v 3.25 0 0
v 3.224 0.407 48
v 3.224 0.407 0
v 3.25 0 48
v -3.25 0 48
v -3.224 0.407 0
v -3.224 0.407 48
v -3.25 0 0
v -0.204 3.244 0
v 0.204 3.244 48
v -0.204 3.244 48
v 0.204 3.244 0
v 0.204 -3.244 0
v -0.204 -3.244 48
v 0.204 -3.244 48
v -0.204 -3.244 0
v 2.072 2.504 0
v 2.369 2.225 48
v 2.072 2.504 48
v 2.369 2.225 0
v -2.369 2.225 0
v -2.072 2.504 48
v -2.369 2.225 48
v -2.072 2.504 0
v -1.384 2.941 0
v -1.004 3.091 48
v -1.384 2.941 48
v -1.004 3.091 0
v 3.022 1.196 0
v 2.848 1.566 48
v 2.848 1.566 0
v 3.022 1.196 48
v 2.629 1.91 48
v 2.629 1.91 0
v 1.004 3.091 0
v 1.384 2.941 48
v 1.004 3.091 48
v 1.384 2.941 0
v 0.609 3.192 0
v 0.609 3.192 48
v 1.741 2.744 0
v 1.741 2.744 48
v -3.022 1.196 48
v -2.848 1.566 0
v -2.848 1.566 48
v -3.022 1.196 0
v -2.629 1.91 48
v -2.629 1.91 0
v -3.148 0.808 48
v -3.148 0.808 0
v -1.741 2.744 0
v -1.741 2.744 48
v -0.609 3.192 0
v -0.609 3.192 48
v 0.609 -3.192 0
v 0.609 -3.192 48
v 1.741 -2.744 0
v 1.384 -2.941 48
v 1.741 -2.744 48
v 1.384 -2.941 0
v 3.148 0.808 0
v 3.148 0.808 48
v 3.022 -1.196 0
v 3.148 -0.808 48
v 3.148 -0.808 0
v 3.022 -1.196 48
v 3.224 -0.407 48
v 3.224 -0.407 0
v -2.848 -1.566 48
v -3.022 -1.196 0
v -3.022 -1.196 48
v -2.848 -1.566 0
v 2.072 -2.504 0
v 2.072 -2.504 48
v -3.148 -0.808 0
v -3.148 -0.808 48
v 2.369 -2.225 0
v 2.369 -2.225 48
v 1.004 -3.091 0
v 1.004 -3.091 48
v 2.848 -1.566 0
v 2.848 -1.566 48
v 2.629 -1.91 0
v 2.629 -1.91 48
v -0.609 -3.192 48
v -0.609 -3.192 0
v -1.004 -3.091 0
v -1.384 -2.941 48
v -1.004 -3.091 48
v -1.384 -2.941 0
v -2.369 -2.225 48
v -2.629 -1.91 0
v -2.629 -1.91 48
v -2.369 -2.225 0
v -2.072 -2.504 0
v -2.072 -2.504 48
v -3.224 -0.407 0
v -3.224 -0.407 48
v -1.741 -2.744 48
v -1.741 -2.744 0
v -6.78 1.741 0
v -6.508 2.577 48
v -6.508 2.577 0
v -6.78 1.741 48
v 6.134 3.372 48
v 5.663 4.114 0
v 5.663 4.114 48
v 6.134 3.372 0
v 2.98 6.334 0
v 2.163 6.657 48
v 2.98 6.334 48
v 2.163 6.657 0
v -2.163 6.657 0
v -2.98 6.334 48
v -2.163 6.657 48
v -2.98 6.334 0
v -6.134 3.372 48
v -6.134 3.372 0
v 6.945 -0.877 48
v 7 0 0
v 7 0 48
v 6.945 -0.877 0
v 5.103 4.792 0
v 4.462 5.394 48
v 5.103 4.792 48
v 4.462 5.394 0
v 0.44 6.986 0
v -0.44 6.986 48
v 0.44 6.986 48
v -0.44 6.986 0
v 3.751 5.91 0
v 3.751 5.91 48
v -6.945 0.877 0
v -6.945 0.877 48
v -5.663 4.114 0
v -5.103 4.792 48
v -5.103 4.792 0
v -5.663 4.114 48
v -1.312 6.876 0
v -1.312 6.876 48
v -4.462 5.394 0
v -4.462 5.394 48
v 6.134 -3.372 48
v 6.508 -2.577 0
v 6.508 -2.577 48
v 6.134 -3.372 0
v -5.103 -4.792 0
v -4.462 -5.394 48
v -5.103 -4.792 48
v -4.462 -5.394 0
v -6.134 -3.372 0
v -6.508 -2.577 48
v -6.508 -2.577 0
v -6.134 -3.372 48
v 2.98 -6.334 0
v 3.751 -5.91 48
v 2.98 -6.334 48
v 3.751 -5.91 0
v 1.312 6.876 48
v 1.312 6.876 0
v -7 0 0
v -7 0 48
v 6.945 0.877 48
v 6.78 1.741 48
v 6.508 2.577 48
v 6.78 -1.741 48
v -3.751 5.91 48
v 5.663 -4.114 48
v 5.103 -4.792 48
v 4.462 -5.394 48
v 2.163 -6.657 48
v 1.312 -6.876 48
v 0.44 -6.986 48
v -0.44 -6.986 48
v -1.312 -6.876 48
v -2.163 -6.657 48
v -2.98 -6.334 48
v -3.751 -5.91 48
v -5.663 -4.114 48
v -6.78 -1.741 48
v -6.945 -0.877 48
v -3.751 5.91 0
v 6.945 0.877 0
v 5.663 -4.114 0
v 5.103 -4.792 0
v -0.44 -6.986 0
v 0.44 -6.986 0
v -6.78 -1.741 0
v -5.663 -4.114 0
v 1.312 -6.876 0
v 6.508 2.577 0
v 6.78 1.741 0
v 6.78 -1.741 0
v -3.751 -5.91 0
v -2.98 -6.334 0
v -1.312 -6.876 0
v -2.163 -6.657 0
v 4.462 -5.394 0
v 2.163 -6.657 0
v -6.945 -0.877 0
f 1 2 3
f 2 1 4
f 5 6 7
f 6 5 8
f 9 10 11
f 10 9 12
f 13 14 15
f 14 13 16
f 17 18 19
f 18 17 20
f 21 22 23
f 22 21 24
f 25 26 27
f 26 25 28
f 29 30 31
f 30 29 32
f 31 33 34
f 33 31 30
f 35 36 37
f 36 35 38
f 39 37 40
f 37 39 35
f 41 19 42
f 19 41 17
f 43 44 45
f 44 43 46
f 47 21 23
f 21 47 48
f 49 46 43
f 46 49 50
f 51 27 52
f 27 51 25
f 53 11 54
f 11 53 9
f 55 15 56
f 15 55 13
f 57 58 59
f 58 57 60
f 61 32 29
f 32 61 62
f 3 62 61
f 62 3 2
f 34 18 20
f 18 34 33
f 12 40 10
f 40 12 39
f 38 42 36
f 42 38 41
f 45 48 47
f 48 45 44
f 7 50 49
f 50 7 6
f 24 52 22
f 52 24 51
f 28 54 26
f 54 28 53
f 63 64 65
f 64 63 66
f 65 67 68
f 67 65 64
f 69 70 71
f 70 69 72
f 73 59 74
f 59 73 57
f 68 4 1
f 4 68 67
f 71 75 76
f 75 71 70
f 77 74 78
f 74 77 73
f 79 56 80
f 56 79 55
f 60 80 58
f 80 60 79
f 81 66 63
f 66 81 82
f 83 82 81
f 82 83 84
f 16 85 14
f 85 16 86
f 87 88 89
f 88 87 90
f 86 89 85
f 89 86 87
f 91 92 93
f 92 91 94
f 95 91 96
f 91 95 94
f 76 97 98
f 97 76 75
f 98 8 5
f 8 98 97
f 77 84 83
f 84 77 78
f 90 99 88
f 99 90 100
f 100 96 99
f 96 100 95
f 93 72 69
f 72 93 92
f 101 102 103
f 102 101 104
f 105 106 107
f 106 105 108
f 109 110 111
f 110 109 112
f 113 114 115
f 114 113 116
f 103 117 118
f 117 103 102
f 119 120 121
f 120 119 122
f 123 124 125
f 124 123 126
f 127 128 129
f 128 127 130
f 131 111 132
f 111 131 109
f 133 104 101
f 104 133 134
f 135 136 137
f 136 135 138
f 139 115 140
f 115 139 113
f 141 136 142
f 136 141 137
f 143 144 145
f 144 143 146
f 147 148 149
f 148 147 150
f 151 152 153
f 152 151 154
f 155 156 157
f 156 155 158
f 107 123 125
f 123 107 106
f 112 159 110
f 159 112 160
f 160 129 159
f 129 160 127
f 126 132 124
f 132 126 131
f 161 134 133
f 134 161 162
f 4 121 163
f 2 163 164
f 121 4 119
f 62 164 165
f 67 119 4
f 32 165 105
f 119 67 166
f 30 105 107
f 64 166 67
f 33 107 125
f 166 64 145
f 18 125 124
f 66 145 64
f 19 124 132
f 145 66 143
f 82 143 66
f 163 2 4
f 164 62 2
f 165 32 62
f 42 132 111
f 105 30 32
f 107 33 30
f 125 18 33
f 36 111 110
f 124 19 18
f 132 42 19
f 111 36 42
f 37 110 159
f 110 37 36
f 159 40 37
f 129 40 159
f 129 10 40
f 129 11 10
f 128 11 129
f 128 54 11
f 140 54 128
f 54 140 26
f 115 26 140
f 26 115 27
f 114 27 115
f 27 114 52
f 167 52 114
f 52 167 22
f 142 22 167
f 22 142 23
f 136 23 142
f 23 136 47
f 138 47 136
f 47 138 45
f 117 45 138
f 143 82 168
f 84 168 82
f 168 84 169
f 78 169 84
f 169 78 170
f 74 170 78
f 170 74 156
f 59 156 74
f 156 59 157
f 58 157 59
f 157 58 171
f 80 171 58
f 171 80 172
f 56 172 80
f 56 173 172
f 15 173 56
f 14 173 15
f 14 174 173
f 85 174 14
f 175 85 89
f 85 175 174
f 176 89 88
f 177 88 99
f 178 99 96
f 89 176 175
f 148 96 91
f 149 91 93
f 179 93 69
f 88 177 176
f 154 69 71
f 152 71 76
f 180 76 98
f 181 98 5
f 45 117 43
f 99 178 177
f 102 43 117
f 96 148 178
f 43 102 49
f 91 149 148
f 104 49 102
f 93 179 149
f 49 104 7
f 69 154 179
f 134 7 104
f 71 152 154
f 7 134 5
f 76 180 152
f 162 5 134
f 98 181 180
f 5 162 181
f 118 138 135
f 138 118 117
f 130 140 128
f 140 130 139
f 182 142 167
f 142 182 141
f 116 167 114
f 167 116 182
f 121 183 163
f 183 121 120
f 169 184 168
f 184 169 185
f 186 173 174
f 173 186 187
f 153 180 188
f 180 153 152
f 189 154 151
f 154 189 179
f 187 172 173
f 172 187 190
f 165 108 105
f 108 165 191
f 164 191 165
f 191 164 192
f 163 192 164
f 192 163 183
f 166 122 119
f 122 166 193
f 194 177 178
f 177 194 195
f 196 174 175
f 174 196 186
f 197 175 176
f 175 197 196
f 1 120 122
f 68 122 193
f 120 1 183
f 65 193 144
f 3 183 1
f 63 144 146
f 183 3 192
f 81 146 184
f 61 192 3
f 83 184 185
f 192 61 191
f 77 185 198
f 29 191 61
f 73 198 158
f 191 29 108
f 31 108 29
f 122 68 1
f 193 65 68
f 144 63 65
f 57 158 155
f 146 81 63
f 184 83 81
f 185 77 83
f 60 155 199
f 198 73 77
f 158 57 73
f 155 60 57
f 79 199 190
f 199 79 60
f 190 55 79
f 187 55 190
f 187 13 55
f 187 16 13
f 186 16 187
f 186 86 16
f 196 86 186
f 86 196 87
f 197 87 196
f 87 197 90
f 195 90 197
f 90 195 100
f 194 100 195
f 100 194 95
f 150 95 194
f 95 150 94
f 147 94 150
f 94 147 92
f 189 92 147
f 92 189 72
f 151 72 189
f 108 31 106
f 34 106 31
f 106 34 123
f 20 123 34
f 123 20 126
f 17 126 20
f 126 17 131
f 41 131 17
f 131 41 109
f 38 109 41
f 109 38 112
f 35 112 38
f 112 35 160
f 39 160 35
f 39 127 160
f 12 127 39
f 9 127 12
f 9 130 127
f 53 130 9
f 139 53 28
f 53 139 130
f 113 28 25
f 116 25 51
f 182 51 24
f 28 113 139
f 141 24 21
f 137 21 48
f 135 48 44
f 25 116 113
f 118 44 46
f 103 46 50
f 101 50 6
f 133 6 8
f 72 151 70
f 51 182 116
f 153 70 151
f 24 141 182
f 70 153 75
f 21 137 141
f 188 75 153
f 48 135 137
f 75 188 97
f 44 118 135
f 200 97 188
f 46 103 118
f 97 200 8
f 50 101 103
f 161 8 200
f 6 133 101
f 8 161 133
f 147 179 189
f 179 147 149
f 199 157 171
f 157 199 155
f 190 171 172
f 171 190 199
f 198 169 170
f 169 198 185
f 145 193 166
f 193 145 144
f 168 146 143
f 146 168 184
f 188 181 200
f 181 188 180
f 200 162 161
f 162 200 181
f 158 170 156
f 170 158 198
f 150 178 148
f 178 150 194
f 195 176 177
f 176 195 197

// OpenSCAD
$fn = 50;


difference() {
	union() {
		cylinder(h = 48, r = 7.0000000000);
	}
	union() {
		cylinder(h = 48, r = 3.2500000000);
		cylinder(h = 48, r = 1.8000000000);
		cylinder(h = 48, r = 1.8000000000);
		cylinder(h = 48, r = 1.8000000000);
	}
}
